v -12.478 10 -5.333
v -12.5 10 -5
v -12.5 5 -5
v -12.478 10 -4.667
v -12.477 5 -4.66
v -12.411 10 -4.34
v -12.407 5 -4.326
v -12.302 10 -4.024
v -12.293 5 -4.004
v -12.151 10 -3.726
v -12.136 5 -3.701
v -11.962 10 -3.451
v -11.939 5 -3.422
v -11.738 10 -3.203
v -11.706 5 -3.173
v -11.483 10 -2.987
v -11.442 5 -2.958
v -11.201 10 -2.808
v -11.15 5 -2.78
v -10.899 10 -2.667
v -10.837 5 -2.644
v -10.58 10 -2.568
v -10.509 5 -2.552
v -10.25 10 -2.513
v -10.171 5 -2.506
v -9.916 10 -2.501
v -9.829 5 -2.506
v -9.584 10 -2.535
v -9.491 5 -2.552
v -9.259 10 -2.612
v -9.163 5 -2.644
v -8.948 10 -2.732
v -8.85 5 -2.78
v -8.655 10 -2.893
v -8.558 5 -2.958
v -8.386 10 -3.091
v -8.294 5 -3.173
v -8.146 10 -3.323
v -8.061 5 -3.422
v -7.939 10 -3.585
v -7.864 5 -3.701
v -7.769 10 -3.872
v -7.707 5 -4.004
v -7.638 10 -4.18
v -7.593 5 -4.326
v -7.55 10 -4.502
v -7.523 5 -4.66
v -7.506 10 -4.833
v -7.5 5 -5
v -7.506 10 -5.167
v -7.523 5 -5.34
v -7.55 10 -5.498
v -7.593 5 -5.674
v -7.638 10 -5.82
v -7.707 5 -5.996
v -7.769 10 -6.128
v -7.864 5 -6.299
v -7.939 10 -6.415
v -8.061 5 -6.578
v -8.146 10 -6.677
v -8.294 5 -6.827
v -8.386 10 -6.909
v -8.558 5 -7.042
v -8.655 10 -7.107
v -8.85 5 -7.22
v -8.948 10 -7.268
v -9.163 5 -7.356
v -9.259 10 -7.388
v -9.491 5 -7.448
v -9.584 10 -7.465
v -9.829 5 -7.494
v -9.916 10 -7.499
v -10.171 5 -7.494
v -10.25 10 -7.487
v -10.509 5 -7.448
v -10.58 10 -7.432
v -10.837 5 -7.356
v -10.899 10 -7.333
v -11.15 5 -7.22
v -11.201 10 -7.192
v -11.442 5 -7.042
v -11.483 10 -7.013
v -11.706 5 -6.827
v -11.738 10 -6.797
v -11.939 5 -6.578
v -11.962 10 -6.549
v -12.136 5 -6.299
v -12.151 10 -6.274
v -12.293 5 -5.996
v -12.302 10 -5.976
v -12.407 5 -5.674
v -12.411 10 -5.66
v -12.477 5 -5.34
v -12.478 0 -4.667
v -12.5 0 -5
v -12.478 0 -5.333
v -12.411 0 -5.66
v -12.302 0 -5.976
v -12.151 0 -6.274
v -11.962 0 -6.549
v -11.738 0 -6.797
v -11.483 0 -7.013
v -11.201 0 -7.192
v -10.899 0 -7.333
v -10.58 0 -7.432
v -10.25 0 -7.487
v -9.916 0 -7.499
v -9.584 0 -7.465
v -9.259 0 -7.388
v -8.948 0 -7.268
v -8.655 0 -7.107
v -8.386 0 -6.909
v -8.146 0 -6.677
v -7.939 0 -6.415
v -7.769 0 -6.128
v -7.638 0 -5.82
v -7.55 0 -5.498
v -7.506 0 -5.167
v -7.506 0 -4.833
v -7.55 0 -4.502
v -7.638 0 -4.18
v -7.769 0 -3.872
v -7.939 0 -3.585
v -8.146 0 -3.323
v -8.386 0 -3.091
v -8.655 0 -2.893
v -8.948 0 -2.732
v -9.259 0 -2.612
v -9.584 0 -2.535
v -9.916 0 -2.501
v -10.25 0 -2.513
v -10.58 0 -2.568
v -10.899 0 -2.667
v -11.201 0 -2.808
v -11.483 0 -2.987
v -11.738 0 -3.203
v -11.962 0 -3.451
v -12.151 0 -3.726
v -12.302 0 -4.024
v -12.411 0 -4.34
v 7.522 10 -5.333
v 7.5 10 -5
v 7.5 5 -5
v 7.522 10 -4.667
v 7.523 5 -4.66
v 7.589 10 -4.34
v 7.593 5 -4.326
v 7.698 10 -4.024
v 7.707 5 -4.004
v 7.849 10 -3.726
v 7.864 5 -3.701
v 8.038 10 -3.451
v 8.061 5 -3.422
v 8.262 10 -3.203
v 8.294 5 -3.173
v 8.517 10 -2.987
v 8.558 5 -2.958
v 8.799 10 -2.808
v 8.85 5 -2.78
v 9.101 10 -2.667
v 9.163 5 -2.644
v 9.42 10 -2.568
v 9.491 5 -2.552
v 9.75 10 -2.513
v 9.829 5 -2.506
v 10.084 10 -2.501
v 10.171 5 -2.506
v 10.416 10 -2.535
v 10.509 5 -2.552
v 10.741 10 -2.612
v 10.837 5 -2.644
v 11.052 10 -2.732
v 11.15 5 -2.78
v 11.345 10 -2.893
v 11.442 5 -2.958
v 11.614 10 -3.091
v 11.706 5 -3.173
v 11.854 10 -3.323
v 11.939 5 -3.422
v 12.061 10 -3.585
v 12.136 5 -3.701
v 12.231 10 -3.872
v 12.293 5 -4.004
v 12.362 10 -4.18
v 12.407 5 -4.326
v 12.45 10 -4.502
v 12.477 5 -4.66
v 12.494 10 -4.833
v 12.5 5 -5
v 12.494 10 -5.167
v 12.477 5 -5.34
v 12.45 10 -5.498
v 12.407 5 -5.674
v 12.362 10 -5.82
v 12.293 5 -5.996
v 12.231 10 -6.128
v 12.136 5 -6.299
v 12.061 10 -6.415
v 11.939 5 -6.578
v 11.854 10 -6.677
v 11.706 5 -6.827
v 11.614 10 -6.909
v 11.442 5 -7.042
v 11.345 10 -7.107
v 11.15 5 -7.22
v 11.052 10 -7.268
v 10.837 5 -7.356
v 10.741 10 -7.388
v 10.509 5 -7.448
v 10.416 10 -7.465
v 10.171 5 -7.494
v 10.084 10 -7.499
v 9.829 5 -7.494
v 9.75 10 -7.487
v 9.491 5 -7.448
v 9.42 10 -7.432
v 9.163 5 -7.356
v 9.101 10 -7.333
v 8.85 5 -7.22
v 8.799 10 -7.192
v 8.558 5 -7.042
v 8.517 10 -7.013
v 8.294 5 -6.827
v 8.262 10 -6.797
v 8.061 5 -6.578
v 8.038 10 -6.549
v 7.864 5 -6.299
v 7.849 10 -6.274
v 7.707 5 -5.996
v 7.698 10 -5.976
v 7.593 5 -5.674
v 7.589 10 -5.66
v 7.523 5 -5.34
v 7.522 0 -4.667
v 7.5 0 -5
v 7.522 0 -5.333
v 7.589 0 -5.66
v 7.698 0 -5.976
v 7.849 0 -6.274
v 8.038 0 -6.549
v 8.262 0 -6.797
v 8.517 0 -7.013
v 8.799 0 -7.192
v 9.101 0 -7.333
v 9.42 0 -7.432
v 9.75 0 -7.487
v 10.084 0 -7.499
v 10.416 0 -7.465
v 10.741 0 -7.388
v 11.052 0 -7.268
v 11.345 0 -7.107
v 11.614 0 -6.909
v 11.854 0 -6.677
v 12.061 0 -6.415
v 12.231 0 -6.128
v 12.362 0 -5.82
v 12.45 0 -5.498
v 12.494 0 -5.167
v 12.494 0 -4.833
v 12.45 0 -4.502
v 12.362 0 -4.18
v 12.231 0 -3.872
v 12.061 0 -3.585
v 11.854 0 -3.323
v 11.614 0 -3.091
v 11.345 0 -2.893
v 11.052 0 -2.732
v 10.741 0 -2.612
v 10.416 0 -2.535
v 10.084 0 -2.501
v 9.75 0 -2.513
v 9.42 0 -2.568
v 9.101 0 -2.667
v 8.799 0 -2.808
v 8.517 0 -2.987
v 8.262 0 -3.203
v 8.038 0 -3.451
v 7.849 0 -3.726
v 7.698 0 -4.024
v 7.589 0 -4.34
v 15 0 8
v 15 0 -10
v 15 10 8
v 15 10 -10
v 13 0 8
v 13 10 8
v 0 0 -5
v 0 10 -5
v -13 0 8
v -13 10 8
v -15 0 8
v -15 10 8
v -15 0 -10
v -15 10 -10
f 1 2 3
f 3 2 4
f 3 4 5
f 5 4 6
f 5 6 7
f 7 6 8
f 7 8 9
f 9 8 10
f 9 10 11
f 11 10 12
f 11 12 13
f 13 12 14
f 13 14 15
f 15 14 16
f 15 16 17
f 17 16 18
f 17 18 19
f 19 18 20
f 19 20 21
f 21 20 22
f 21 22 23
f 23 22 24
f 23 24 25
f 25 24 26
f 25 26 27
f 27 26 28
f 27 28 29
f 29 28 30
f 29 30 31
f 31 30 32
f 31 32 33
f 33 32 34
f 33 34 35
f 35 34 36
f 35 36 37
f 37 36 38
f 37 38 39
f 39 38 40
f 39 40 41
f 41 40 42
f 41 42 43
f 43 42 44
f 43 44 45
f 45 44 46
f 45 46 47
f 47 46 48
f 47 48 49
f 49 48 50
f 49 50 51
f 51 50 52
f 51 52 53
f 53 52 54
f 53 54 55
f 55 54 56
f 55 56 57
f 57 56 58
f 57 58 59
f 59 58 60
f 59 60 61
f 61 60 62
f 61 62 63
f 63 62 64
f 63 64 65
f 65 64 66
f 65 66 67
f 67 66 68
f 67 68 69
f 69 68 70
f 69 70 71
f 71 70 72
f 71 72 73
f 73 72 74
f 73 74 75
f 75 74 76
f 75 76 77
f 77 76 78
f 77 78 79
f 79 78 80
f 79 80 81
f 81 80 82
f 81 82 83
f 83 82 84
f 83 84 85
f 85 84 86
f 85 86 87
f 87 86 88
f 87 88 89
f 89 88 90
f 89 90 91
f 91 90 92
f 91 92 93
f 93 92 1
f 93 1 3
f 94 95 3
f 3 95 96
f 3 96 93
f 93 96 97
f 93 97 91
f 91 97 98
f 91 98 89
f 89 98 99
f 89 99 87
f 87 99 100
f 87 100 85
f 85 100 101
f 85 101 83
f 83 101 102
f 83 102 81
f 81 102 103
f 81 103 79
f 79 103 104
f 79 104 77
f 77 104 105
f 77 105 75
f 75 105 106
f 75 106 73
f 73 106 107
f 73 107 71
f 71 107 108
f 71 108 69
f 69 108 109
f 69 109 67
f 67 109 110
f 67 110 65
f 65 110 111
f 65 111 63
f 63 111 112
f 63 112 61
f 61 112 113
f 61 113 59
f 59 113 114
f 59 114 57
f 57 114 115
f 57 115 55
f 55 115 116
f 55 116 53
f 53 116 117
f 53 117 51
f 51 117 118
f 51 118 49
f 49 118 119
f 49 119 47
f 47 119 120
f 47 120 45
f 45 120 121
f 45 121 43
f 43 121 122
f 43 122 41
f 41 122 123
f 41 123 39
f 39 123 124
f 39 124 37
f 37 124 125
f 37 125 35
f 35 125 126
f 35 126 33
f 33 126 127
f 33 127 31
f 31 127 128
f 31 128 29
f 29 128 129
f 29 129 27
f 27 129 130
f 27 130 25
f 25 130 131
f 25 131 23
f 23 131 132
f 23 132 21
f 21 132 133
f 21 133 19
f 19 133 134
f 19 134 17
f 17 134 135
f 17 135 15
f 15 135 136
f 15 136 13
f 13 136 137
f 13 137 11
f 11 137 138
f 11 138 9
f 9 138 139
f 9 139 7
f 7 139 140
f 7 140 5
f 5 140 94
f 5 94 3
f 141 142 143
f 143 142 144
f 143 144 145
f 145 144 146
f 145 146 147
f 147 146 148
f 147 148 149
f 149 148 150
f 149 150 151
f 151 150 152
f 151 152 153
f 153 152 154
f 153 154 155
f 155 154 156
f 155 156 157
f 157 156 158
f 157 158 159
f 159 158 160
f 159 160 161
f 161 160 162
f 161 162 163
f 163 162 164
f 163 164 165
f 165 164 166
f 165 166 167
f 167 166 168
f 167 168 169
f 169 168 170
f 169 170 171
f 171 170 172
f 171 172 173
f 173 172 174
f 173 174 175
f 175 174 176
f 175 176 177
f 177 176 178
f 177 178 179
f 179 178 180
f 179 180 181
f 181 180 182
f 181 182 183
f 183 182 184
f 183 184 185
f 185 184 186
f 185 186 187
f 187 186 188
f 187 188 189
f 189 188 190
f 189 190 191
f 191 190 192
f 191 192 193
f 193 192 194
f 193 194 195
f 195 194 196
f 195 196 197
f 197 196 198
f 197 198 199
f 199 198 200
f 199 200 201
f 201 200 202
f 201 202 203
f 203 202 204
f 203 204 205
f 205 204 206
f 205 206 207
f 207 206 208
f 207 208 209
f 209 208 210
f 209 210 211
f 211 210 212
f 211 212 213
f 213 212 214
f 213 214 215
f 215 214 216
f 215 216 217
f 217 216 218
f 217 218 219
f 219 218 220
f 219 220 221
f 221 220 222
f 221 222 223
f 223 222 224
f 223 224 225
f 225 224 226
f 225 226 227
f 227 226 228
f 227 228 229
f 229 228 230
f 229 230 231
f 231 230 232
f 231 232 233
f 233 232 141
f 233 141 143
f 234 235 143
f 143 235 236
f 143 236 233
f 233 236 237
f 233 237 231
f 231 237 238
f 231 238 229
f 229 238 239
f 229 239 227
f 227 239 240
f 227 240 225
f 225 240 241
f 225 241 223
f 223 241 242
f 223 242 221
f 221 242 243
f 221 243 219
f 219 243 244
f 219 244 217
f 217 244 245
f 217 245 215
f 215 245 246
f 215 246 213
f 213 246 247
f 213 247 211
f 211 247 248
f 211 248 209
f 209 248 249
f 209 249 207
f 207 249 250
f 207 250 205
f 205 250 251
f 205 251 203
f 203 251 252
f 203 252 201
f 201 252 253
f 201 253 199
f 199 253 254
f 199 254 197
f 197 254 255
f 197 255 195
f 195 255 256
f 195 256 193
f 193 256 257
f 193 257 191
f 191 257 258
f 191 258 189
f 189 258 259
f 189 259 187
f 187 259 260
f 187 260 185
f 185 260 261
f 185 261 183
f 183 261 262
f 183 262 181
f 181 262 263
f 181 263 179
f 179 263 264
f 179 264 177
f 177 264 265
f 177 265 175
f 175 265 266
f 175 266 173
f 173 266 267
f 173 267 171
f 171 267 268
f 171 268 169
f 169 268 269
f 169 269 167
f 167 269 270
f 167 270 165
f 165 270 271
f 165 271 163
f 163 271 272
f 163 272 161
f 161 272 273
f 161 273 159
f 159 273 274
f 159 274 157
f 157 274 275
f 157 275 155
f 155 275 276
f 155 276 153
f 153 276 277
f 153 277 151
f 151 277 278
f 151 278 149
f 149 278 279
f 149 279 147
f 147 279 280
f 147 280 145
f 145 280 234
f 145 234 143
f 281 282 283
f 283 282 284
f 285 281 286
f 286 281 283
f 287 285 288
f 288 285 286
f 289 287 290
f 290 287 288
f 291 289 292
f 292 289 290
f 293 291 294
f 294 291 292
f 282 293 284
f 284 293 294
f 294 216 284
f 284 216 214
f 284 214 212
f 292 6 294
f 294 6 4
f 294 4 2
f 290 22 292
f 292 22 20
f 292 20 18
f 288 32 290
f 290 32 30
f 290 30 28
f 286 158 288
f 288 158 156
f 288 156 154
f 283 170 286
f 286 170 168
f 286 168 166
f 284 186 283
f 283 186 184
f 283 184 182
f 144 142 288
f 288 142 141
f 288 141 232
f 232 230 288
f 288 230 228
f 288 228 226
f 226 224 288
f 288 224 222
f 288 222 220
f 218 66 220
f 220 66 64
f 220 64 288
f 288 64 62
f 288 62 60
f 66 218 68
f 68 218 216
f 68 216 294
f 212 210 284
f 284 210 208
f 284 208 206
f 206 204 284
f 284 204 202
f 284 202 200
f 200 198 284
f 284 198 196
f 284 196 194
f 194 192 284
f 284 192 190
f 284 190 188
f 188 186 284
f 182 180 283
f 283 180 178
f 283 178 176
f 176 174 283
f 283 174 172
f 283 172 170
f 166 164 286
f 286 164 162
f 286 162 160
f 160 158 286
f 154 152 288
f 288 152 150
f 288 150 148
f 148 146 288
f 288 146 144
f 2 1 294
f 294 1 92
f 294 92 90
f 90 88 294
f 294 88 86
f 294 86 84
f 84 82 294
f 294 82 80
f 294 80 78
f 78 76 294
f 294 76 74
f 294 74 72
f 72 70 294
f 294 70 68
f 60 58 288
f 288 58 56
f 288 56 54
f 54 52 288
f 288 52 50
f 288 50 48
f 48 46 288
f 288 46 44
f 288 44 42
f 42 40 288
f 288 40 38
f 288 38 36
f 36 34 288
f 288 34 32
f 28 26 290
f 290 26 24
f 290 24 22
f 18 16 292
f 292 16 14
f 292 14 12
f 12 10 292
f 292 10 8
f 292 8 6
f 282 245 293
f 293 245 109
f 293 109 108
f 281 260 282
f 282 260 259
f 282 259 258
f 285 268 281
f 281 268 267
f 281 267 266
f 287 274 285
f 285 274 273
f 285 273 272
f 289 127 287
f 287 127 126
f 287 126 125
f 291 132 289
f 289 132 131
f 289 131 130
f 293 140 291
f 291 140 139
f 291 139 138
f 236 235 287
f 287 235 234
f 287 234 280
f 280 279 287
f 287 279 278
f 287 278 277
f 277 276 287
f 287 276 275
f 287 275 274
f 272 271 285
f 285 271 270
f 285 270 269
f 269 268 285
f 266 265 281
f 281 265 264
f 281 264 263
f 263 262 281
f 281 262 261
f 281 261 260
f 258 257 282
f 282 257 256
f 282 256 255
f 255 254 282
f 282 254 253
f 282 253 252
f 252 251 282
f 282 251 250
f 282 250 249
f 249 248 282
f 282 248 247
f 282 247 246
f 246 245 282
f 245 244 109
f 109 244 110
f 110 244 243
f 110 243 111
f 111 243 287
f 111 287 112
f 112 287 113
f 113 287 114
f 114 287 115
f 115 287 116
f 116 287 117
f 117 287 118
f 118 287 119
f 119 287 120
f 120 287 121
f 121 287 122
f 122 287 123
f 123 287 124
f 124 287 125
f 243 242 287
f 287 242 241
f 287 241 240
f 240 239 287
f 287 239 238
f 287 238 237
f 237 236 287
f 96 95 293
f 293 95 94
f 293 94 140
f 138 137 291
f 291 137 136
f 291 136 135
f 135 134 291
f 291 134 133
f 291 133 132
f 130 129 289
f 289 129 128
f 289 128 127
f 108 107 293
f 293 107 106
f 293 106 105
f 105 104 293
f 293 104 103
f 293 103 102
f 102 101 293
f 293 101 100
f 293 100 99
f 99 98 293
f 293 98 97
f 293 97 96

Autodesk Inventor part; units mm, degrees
ref_plane "YZ Plane" through (0, 0, 0) normal (1, 0, 0) x (0, 1, 0)
ref_plane "XZ Plane" through (0, 0, 0) normal (0, 1, 0) x (-1, 0, 0)
ref_plane "XY Plane" through (0, 0, 0) normal (0, 0, 1) x (1, 0, 0)
sketch "Boceto1" plane through (0, 0, 0) normal (0, 1, 0) x (-1, 0, 0)
  line L0 (-15, -10) -> (15, -10)
  line L1 (13, 8) -> (0, -5)
  line L2 (-13, 8) -> (0, -5)
  line L3 (-15, 8) -> (-13, 8)
  line L4 (15, 8) -> (13, 8)
  line L5 (15, -10) -> (15, 8)
  line L6 (-15, -10) -> (-15, 8)
  line L7 (15, -10) -> (10, -10)
  line L8 (-15, -10) -> (-10, -10)
  circle A0 centre (-10, -5) radius 2.5
  circle A1 centre (10, -5) radius 2.5
  point P0 (0, 0)
  dimension "d5" = 5
  dimension "d8" = 5
  dimension "d9" = 5
extrude "Extrusión1" add sketch "Boceto1" along normal blind 10
properties part number "_3DPrint"
